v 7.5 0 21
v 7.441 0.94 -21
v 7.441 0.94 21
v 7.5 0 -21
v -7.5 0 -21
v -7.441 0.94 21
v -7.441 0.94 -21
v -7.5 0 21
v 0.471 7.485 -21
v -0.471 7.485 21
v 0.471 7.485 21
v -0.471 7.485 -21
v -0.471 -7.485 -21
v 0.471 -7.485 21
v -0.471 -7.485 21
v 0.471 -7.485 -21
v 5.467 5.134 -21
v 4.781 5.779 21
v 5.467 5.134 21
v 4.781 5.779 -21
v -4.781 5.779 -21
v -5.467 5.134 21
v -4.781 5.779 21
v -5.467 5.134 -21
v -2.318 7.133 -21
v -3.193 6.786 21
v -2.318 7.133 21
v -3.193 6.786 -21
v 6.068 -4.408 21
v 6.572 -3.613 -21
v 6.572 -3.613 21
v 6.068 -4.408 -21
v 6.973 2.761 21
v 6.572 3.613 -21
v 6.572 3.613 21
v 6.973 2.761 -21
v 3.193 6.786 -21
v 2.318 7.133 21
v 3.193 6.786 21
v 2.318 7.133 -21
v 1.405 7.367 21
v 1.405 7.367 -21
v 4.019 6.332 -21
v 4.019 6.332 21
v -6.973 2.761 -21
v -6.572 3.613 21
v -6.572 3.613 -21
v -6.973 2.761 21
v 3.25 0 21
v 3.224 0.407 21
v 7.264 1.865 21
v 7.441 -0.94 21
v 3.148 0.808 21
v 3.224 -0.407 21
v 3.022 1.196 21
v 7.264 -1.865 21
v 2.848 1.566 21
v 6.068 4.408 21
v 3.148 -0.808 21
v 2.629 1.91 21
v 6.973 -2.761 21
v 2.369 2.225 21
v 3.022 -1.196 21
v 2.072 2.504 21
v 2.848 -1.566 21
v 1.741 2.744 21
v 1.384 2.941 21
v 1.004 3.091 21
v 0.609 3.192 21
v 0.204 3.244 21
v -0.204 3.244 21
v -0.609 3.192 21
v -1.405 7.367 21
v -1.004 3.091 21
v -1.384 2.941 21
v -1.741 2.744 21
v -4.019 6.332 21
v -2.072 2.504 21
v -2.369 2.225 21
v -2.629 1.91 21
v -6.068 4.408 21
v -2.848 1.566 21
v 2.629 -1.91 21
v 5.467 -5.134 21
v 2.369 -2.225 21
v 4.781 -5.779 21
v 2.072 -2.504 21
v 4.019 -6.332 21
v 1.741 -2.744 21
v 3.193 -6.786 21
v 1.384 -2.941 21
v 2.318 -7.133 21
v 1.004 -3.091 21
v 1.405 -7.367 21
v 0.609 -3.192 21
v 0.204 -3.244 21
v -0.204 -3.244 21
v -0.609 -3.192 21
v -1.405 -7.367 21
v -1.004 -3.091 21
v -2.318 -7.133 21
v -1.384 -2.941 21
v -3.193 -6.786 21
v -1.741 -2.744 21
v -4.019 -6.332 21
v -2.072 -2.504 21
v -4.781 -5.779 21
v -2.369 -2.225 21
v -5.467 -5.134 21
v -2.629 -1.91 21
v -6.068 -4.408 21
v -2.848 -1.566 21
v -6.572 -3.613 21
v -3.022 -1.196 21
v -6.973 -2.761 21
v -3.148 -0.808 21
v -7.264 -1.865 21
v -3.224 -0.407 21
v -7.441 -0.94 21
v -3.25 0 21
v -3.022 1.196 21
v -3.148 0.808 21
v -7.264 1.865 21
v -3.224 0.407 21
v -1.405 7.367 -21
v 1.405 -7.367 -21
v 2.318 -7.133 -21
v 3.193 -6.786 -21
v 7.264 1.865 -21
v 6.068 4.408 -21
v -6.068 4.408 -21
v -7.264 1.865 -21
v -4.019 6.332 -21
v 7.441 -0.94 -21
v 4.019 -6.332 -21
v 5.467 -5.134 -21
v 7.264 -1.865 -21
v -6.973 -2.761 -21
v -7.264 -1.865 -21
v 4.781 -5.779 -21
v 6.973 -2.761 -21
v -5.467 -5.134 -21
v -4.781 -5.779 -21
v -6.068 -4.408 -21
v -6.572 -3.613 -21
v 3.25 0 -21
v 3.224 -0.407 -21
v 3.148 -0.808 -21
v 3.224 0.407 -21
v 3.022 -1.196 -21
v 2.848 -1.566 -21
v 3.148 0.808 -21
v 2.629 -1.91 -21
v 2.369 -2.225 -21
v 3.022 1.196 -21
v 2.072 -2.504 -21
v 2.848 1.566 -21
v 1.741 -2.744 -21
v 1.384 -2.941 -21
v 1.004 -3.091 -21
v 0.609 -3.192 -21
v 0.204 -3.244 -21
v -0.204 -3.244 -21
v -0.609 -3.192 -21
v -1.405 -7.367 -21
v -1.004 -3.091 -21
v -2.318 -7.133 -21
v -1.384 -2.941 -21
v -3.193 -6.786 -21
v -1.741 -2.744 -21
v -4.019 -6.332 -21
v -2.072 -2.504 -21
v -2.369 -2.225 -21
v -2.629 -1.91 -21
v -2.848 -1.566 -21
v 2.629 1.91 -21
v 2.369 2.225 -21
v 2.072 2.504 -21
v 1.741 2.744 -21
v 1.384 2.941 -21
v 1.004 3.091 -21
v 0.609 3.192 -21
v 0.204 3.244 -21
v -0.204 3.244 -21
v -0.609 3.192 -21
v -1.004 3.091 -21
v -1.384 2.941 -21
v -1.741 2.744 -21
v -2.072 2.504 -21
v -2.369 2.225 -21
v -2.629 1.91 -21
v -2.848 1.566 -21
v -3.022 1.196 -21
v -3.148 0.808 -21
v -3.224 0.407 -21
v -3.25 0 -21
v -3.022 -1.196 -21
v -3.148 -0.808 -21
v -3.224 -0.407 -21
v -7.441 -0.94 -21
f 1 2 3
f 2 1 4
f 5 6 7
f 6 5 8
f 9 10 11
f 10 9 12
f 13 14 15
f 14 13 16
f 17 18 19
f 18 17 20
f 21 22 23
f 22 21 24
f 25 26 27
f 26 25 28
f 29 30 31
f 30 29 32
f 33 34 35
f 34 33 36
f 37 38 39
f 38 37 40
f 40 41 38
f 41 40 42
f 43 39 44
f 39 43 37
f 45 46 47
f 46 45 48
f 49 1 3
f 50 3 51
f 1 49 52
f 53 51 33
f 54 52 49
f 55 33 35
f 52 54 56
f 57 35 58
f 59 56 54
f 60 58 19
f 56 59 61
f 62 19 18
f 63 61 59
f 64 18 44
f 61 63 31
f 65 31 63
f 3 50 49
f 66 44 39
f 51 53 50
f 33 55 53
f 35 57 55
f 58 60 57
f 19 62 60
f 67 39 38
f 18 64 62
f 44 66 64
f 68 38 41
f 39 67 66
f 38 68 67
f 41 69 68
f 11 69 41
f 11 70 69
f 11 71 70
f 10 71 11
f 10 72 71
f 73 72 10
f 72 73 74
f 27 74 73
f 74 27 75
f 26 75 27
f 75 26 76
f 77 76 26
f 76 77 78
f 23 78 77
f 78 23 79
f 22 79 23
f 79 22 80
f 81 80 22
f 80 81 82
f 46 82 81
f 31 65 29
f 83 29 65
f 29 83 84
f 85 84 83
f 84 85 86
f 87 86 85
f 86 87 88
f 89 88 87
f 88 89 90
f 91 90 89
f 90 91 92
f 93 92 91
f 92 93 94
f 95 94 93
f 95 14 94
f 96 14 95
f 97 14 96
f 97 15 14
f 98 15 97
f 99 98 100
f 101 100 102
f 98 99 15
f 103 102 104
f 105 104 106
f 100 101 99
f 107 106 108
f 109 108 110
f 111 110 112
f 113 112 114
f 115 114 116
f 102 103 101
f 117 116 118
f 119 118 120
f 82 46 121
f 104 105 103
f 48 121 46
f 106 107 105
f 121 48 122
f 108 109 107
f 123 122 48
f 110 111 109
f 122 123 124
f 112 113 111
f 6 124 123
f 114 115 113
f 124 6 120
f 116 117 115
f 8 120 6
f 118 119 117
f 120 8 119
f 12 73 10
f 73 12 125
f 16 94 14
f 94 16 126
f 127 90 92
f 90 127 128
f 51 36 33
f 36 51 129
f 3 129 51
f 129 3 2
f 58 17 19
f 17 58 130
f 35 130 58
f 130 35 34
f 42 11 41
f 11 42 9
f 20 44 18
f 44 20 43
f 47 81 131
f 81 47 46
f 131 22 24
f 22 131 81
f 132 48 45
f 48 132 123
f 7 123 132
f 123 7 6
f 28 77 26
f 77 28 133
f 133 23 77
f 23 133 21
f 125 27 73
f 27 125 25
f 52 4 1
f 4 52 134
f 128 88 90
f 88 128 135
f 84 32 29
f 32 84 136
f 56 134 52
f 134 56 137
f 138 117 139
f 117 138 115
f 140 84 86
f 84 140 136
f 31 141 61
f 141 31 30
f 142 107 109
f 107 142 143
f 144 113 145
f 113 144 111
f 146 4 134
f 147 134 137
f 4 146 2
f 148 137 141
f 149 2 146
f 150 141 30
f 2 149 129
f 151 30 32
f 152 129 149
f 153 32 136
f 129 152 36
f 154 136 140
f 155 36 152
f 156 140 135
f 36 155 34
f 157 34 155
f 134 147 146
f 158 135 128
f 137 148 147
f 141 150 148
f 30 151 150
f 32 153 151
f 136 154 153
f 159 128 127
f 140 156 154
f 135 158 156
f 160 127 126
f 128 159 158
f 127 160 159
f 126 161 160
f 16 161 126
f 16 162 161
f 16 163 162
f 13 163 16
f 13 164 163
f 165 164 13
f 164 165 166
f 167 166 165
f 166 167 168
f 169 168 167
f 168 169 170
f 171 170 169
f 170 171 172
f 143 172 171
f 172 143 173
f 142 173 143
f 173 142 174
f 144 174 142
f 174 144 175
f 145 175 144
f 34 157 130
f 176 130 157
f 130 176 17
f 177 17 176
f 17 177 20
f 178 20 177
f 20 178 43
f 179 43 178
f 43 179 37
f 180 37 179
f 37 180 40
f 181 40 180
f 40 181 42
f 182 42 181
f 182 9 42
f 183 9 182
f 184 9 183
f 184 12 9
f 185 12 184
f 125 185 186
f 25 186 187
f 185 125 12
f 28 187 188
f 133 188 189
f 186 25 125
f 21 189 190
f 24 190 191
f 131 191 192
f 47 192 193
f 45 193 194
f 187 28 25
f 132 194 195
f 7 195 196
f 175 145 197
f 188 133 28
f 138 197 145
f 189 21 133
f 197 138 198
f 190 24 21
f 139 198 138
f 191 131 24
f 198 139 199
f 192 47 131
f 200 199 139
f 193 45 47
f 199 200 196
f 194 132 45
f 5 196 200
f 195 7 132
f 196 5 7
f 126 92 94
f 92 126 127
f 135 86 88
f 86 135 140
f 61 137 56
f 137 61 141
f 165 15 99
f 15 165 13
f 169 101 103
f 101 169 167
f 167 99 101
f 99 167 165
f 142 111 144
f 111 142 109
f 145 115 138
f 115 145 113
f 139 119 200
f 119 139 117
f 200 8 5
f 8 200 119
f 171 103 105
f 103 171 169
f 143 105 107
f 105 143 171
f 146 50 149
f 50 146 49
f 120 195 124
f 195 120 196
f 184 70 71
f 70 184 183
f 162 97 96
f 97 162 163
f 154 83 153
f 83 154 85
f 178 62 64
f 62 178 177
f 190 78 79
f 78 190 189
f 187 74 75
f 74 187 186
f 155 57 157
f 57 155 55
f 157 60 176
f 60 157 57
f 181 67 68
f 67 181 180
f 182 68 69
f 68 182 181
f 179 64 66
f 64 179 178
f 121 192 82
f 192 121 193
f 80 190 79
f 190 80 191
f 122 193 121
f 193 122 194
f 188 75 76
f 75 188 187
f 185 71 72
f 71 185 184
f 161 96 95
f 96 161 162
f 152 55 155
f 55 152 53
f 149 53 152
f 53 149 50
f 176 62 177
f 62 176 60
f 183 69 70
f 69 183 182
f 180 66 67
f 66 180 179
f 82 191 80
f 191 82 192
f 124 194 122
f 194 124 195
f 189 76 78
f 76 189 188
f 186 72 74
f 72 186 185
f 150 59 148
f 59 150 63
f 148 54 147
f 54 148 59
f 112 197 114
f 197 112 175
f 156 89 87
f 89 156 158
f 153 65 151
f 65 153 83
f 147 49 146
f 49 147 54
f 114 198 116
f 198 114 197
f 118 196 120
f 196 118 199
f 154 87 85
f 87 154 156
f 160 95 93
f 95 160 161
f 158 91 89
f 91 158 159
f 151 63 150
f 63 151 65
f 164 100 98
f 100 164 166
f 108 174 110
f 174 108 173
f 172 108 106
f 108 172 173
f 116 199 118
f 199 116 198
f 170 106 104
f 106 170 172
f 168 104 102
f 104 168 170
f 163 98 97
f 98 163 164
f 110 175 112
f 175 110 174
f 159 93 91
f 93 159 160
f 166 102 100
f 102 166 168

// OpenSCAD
$fn = 50;


difference() {
	union() {
		translate(v = [0, 0, -21.0000000000]) {
			cylinder(h = 42, r = 7.5000000000);
		}
	}
	union() {
		translate(v = [0, 0, -100.0000000000]) {
			cylinder(h = 200, r = 3.2500000000);
		}
	}
}
